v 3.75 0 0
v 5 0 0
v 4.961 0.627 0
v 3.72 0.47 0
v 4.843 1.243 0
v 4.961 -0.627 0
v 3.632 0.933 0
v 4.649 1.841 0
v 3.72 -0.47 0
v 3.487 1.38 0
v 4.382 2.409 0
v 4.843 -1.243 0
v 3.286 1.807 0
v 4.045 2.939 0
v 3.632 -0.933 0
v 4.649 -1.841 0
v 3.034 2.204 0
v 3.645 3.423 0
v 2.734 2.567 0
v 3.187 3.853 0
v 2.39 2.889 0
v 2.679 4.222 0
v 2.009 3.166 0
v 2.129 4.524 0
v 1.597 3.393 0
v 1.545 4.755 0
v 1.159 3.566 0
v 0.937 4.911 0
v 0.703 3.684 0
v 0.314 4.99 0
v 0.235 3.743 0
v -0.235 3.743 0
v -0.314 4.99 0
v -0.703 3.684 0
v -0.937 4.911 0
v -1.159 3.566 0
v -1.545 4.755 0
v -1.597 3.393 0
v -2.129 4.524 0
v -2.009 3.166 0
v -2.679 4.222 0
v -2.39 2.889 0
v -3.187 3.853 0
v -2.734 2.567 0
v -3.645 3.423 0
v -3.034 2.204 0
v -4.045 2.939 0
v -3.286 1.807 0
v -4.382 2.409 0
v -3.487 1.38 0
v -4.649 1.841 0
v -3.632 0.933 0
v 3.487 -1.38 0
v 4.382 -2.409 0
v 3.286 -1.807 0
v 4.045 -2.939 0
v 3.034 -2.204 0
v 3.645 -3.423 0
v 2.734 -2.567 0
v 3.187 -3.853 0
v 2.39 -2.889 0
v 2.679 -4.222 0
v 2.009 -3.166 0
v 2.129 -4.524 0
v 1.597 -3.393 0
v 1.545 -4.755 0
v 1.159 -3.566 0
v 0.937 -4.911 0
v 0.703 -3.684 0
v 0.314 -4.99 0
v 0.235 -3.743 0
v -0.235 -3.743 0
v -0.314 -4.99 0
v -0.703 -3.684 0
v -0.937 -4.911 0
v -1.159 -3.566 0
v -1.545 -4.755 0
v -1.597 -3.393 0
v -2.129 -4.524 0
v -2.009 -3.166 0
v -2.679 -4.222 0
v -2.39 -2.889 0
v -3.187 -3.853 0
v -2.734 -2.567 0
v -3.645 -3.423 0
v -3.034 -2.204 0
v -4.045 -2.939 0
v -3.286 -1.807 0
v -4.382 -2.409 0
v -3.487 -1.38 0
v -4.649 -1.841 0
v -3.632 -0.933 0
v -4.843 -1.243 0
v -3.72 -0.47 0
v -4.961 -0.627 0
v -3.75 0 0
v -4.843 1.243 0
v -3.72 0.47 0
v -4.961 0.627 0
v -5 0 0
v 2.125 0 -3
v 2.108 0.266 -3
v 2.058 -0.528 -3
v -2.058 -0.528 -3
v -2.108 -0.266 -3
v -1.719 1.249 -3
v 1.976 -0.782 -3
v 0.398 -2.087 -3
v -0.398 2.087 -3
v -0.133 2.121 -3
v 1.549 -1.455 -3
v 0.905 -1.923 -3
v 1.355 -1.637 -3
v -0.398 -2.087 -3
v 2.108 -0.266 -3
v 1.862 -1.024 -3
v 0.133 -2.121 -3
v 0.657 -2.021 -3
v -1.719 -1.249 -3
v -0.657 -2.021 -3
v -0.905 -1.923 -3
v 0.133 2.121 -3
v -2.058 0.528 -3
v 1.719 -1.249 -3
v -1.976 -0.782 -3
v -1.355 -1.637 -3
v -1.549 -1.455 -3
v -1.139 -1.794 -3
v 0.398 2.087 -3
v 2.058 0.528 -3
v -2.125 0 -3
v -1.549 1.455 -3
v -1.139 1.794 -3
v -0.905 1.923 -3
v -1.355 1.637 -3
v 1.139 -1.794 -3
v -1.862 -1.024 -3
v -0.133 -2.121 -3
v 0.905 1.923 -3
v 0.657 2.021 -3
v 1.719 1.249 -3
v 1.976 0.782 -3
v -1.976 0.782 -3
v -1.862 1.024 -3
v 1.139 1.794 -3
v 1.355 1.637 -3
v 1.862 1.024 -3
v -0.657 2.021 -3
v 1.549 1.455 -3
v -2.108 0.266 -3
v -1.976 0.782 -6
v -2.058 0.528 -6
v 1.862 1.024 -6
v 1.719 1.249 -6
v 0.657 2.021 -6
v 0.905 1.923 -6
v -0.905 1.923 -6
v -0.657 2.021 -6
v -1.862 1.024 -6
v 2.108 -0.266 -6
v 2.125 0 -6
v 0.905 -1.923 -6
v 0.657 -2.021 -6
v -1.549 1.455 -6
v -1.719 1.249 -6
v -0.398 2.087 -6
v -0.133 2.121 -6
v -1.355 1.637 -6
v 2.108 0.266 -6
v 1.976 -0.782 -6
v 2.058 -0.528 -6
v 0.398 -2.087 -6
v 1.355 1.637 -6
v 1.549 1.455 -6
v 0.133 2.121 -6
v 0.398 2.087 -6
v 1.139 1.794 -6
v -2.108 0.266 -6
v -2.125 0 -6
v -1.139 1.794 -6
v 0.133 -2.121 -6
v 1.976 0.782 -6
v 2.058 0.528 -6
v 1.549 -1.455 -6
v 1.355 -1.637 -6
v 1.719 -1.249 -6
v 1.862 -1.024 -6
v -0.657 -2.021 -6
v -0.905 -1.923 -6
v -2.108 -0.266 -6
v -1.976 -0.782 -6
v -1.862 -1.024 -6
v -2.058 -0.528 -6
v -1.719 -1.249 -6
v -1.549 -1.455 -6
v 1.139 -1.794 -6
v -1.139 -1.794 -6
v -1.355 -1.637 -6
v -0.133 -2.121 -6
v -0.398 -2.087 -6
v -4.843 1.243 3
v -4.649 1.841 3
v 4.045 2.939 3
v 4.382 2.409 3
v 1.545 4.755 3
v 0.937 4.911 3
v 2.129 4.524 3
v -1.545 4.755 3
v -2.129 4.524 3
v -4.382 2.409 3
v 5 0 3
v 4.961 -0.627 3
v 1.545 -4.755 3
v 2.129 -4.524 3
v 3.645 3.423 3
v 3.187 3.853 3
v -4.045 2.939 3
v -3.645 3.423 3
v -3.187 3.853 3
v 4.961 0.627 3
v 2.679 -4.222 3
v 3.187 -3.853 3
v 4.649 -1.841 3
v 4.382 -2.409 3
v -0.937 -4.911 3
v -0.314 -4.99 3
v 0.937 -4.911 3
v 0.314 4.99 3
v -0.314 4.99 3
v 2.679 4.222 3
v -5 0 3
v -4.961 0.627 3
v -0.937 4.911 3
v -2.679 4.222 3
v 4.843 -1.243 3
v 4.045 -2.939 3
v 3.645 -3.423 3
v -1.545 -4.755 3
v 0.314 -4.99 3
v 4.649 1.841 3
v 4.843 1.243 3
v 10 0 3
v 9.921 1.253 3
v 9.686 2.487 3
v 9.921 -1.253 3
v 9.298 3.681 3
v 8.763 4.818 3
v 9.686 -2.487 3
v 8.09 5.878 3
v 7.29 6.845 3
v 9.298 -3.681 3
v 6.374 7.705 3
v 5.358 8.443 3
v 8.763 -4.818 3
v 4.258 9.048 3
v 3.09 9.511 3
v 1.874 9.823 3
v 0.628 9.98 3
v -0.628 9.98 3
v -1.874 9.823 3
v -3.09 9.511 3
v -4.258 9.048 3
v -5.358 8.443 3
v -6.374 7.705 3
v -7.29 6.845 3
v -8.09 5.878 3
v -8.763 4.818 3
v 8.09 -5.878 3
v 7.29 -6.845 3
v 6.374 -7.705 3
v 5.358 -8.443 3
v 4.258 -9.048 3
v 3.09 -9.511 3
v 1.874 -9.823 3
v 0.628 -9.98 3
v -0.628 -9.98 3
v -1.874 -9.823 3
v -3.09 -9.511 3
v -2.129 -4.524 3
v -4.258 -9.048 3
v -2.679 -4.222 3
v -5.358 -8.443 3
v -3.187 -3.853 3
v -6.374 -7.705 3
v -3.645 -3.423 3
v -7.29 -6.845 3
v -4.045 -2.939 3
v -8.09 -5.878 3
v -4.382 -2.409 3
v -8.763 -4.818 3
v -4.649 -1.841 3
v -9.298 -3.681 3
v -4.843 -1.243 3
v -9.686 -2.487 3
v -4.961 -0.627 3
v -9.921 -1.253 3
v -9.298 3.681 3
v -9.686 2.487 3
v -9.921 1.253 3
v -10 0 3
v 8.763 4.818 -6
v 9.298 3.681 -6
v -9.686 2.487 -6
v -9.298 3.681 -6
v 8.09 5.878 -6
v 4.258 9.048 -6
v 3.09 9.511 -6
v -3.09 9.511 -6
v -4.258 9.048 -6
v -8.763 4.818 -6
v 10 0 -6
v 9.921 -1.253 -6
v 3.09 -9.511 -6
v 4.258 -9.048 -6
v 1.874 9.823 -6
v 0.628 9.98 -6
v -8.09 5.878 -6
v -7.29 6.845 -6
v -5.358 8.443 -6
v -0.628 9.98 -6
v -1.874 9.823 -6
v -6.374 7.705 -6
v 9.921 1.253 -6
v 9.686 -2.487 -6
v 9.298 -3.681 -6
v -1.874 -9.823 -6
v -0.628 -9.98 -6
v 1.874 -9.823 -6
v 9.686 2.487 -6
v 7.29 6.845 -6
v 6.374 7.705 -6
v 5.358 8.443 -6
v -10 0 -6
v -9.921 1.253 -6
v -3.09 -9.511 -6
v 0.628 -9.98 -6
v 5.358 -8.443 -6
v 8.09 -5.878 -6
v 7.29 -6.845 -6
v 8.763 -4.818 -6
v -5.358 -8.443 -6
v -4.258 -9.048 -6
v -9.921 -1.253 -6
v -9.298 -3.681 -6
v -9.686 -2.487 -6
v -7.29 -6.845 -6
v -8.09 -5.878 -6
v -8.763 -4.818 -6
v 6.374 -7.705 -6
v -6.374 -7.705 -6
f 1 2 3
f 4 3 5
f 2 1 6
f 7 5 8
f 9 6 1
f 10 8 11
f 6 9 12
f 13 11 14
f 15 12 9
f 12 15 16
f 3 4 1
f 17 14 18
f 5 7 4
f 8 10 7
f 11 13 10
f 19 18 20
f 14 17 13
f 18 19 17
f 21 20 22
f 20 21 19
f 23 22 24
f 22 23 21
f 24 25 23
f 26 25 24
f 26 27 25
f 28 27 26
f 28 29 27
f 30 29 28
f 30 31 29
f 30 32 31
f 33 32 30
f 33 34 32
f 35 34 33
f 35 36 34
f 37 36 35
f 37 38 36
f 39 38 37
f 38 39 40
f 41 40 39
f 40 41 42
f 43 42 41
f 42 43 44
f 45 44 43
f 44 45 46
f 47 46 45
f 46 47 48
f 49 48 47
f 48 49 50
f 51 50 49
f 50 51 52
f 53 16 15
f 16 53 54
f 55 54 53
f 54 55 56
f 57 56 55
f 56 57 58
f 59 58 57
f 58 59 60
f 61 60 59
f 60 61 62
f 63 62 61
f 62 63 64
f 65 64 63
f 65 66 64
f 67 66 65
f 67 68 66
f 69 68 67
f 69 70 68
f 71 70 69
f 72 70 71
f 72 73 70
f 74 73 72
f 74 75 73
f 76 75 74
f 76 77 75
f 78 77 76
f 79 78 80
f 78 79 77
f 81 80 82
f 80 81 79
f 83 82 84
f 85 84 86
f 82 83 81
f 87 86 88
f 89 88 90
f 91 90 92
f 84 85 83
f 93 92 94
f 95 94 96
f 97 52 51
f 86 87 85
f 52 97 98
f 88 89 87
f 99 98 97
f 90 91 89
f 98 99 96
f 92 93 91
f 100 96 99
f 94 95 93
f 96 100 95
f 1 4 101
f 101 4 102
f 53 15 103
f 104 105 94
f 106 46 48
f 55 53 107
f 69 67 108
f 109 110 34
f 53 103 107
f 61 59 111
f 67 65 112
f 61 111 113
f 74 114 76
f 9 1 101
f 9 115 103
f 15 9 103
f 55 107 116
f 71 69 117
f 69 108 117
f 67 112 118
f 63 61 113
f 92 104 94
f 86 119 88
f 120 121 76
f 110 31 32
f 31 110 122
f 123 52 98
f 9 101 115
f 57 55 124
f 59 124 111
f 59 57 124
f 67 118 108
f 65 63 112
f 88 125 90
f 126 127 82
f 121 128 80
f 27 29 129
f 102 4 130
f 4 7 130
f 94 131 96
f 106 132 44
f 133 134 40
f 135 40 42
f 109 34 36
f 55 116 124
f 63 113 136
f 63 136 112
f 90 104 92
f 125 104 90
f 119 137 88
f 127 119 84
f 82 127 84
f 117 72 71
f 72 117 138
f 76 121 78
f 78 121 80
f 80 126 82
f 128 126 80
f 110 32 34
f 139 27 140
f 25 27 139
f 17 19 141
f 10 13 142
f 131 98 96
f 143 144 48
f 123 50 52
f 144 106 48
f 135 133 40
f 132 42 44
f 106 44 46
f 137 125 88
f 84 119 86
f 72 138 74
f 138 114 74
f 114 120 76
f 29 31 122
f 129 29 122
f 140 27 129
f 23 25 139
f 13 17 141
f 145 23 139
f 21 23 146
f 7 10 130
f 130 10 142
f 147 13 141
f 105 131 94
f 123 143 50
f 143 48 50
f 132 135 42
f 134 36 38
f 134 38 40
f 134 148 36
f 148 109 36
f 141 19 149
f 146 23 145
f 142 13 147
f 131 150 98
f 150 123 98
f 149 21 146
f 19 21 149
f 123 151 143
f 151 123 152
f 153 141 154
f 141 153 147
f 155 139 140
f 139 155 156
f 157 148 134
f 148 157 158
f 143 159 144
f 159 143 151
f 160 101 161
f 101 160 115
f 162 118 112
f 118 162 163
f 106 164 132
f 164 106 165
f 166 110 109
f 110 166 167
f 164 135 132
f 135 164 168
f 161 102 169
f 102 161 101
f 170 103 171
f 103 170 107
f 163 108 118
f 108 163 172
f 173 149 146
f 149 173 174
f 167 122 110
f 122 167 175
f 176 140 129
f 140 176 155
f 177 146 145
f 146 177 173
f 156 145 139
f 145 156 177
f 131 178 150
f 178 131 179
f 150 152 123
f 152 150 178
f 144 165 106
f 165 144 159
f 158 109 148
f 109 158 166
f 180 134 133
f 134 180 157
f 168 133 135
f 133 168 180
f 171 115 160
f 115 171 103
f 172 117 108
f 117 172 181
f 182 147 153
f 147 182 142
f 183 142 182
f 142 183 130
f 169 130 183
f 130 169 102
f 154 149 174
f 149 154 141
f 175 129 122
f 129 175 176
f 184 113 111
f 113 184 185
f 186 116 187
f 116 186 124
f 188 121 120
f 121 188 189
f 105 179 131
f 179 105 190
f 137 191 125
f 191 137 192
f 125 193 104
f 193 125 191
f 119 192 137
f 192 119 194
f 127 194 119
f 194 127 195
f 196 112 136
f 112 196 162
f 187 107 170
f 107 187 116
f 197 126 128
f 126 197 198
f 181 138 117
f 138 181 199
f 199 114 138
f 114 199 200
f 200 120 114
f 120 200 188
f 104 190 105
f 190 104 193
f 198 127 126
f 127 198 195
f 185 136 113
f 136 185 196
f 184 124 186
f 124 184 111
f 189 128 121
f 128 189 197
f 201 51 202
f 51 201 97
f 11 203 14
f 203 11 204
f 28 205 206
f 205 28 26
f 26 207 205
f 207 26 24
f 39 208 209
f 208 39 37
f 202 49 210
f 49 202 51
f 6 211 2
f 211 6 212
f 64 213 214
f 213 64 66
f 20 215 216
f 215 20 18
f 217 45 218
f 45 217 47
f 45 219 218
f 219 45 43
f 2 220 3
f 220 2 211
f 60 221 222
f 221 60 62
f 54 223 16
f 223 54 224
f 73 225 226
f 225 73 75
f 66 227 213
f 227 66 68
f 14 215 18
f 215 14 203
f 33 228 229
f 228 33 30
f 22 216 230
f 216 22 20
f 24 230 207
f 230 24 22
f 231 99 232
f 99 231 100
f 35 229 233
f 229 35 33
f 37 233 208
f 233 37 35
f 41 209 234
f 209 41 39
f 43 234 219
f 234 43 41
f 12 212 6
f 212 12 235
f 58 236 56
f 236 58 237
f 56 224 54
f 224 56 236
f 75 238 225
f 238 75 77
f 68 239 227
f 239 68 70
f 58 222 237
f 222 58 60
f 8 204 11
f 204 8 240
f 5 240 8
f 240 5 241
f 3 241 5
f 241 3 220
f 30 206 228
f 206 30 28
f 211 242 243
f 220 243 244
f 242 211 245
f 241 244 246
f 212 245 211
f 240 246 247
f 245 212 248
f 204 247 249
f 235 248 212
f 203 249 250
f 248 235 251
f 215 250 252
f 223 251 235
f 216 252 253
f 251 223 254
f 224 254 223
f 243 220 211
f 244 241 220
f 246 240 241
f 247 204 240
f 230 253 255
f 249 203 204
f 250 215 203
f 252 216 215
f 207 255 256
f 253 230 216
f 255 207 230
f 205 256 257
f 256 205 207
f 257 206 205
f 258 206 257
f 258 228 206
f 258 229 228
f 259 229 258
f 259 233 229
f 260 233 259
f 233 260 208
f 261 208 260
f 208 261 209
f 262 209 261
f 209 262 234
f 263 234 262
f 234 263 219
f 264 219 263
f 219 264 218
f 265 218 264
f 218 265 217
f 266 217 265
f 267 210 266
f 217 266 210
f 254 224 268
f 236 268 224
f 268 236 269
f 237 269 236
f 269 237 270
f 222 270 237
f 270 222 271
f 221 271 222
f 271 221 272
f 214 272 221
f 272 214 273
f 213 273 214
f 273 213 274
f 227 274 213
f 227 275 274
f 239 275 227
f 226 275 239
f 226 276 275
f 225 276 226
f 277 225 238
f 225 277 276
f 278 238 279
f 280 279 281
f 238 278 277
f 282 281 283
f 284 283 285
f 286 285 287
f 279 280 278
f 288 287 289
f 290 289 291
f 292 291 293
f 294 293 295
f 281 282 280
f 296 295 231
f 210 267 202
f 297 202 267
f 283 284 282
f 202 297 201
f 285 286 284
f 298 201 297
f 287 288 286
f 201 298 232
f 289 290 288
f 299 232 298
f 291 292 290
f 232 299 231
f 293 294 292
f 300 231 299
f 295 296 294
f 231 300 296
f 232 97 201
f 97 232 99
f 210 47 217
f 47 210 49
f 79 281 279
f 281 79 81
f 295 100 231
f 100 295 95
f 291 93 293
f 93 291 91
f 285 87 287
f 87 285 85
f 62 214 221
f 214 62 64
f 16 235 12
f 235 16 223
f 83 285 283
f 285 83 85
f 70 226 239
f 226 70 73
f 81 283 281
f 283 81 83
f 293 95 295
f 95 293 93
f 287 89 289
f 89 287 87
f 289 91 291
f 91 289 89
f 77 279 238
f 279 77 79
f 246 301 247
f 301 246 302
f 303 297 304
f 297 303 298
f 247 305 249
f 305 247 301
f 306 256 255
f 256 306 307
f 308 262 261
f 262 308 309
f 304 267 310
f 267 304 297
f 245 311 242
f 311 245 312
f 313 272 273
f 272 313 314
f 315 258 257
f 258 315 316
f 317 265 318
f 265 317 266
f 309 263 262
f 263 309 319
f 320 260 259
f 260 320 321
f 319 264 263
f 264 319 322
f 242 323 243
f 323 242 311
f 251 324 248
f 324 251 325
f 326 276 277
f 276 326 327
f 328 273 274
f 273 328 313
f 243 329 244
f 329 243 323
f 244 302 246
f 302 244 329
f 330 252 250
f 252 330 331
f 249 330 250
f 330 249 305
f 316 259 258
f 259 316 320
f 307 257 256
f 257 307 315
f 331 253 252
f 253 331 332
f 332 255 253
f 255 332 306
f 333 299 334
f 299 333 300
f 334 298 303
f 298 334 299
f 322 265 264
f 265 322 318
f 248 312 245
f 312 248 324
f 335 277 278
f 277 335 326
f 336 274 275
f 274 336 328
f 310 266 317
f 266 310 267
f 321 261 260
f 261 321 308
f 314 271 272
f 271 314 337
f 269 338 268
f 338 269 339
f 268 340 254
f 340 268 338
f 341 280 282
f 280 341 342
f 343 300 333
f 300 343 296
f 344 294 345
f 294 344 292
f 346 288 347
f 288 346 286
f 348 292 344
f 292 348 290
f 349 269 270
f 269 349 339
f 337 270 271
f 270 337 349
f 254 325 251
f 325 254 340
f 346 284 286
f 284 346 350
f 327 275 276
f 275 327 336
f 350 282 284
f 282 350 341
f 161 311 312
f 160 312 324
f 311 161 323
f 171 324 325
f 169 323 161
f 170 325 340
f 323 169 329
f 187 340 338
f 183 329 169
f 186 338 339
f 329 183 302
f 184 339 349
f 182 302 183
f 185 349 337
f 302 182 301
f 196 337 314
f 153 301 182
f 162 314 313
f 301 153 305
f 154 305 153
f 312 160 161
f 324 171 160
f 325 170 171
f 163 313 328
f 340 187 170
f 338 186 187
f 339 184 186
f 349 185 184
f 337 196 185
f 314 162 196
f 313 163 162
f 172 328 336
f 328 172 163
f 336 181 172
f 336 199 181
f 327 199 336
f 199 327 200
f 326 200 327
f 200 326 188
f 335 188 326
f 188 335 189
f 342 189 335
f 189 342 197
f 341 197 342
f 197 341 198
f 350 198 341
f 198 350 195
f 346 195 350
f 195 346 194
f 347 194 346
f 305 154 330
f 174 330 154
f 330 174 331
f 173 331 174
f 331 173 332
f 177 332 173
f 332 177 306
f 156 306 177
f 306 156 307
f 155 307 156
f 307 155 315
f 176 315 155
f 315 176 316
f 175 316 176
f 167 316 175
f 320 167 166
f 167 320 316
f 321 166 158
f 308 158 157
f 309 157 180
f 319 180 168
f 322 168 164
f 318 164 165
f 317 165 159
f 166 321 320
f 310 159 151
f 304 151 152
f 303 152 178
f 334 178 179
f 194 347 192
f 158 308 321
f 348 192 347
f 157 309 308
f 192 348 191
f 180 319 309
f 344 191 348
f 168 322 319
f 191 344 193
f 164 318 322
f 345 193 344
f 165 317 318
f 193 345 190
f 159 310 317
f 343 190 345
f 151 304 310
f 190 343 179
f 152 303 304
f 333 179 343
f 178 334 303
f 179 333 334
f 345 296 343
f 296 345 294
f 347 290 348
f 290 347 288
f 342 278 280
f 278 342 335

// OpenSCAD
$fn = 50;

difference() {
	union() {
		translate(v = [0, 0, -6.0]) {
			cylinder(h = 9, r = 10.0);
		}
	}
	union() {
		translate(v = [0, 0, 0]) {
			rotate(a = [0, 0, 0]) {
				difference() {
					union() {
						translate(v = [0, 0, -9.0]) {
							cylinder(h = 9, r = 2.0);
						}
						translate(v = [0, 0, -3]) {
							cylinder(h = 3, r1 = 2.125, r2 = 3.75);
						}
						translate(v = [0, 0, -9.0]) {
							cylinder(h = 9, r = 2.125);
						}
						translate(v = [0, 0, -9.0]) {
							cylinder(h = 9, r = 2.0);
						}
					}
					union();
				}
			}
		}
		#cylinder(h = 3, r = 5.0);
	}
}
